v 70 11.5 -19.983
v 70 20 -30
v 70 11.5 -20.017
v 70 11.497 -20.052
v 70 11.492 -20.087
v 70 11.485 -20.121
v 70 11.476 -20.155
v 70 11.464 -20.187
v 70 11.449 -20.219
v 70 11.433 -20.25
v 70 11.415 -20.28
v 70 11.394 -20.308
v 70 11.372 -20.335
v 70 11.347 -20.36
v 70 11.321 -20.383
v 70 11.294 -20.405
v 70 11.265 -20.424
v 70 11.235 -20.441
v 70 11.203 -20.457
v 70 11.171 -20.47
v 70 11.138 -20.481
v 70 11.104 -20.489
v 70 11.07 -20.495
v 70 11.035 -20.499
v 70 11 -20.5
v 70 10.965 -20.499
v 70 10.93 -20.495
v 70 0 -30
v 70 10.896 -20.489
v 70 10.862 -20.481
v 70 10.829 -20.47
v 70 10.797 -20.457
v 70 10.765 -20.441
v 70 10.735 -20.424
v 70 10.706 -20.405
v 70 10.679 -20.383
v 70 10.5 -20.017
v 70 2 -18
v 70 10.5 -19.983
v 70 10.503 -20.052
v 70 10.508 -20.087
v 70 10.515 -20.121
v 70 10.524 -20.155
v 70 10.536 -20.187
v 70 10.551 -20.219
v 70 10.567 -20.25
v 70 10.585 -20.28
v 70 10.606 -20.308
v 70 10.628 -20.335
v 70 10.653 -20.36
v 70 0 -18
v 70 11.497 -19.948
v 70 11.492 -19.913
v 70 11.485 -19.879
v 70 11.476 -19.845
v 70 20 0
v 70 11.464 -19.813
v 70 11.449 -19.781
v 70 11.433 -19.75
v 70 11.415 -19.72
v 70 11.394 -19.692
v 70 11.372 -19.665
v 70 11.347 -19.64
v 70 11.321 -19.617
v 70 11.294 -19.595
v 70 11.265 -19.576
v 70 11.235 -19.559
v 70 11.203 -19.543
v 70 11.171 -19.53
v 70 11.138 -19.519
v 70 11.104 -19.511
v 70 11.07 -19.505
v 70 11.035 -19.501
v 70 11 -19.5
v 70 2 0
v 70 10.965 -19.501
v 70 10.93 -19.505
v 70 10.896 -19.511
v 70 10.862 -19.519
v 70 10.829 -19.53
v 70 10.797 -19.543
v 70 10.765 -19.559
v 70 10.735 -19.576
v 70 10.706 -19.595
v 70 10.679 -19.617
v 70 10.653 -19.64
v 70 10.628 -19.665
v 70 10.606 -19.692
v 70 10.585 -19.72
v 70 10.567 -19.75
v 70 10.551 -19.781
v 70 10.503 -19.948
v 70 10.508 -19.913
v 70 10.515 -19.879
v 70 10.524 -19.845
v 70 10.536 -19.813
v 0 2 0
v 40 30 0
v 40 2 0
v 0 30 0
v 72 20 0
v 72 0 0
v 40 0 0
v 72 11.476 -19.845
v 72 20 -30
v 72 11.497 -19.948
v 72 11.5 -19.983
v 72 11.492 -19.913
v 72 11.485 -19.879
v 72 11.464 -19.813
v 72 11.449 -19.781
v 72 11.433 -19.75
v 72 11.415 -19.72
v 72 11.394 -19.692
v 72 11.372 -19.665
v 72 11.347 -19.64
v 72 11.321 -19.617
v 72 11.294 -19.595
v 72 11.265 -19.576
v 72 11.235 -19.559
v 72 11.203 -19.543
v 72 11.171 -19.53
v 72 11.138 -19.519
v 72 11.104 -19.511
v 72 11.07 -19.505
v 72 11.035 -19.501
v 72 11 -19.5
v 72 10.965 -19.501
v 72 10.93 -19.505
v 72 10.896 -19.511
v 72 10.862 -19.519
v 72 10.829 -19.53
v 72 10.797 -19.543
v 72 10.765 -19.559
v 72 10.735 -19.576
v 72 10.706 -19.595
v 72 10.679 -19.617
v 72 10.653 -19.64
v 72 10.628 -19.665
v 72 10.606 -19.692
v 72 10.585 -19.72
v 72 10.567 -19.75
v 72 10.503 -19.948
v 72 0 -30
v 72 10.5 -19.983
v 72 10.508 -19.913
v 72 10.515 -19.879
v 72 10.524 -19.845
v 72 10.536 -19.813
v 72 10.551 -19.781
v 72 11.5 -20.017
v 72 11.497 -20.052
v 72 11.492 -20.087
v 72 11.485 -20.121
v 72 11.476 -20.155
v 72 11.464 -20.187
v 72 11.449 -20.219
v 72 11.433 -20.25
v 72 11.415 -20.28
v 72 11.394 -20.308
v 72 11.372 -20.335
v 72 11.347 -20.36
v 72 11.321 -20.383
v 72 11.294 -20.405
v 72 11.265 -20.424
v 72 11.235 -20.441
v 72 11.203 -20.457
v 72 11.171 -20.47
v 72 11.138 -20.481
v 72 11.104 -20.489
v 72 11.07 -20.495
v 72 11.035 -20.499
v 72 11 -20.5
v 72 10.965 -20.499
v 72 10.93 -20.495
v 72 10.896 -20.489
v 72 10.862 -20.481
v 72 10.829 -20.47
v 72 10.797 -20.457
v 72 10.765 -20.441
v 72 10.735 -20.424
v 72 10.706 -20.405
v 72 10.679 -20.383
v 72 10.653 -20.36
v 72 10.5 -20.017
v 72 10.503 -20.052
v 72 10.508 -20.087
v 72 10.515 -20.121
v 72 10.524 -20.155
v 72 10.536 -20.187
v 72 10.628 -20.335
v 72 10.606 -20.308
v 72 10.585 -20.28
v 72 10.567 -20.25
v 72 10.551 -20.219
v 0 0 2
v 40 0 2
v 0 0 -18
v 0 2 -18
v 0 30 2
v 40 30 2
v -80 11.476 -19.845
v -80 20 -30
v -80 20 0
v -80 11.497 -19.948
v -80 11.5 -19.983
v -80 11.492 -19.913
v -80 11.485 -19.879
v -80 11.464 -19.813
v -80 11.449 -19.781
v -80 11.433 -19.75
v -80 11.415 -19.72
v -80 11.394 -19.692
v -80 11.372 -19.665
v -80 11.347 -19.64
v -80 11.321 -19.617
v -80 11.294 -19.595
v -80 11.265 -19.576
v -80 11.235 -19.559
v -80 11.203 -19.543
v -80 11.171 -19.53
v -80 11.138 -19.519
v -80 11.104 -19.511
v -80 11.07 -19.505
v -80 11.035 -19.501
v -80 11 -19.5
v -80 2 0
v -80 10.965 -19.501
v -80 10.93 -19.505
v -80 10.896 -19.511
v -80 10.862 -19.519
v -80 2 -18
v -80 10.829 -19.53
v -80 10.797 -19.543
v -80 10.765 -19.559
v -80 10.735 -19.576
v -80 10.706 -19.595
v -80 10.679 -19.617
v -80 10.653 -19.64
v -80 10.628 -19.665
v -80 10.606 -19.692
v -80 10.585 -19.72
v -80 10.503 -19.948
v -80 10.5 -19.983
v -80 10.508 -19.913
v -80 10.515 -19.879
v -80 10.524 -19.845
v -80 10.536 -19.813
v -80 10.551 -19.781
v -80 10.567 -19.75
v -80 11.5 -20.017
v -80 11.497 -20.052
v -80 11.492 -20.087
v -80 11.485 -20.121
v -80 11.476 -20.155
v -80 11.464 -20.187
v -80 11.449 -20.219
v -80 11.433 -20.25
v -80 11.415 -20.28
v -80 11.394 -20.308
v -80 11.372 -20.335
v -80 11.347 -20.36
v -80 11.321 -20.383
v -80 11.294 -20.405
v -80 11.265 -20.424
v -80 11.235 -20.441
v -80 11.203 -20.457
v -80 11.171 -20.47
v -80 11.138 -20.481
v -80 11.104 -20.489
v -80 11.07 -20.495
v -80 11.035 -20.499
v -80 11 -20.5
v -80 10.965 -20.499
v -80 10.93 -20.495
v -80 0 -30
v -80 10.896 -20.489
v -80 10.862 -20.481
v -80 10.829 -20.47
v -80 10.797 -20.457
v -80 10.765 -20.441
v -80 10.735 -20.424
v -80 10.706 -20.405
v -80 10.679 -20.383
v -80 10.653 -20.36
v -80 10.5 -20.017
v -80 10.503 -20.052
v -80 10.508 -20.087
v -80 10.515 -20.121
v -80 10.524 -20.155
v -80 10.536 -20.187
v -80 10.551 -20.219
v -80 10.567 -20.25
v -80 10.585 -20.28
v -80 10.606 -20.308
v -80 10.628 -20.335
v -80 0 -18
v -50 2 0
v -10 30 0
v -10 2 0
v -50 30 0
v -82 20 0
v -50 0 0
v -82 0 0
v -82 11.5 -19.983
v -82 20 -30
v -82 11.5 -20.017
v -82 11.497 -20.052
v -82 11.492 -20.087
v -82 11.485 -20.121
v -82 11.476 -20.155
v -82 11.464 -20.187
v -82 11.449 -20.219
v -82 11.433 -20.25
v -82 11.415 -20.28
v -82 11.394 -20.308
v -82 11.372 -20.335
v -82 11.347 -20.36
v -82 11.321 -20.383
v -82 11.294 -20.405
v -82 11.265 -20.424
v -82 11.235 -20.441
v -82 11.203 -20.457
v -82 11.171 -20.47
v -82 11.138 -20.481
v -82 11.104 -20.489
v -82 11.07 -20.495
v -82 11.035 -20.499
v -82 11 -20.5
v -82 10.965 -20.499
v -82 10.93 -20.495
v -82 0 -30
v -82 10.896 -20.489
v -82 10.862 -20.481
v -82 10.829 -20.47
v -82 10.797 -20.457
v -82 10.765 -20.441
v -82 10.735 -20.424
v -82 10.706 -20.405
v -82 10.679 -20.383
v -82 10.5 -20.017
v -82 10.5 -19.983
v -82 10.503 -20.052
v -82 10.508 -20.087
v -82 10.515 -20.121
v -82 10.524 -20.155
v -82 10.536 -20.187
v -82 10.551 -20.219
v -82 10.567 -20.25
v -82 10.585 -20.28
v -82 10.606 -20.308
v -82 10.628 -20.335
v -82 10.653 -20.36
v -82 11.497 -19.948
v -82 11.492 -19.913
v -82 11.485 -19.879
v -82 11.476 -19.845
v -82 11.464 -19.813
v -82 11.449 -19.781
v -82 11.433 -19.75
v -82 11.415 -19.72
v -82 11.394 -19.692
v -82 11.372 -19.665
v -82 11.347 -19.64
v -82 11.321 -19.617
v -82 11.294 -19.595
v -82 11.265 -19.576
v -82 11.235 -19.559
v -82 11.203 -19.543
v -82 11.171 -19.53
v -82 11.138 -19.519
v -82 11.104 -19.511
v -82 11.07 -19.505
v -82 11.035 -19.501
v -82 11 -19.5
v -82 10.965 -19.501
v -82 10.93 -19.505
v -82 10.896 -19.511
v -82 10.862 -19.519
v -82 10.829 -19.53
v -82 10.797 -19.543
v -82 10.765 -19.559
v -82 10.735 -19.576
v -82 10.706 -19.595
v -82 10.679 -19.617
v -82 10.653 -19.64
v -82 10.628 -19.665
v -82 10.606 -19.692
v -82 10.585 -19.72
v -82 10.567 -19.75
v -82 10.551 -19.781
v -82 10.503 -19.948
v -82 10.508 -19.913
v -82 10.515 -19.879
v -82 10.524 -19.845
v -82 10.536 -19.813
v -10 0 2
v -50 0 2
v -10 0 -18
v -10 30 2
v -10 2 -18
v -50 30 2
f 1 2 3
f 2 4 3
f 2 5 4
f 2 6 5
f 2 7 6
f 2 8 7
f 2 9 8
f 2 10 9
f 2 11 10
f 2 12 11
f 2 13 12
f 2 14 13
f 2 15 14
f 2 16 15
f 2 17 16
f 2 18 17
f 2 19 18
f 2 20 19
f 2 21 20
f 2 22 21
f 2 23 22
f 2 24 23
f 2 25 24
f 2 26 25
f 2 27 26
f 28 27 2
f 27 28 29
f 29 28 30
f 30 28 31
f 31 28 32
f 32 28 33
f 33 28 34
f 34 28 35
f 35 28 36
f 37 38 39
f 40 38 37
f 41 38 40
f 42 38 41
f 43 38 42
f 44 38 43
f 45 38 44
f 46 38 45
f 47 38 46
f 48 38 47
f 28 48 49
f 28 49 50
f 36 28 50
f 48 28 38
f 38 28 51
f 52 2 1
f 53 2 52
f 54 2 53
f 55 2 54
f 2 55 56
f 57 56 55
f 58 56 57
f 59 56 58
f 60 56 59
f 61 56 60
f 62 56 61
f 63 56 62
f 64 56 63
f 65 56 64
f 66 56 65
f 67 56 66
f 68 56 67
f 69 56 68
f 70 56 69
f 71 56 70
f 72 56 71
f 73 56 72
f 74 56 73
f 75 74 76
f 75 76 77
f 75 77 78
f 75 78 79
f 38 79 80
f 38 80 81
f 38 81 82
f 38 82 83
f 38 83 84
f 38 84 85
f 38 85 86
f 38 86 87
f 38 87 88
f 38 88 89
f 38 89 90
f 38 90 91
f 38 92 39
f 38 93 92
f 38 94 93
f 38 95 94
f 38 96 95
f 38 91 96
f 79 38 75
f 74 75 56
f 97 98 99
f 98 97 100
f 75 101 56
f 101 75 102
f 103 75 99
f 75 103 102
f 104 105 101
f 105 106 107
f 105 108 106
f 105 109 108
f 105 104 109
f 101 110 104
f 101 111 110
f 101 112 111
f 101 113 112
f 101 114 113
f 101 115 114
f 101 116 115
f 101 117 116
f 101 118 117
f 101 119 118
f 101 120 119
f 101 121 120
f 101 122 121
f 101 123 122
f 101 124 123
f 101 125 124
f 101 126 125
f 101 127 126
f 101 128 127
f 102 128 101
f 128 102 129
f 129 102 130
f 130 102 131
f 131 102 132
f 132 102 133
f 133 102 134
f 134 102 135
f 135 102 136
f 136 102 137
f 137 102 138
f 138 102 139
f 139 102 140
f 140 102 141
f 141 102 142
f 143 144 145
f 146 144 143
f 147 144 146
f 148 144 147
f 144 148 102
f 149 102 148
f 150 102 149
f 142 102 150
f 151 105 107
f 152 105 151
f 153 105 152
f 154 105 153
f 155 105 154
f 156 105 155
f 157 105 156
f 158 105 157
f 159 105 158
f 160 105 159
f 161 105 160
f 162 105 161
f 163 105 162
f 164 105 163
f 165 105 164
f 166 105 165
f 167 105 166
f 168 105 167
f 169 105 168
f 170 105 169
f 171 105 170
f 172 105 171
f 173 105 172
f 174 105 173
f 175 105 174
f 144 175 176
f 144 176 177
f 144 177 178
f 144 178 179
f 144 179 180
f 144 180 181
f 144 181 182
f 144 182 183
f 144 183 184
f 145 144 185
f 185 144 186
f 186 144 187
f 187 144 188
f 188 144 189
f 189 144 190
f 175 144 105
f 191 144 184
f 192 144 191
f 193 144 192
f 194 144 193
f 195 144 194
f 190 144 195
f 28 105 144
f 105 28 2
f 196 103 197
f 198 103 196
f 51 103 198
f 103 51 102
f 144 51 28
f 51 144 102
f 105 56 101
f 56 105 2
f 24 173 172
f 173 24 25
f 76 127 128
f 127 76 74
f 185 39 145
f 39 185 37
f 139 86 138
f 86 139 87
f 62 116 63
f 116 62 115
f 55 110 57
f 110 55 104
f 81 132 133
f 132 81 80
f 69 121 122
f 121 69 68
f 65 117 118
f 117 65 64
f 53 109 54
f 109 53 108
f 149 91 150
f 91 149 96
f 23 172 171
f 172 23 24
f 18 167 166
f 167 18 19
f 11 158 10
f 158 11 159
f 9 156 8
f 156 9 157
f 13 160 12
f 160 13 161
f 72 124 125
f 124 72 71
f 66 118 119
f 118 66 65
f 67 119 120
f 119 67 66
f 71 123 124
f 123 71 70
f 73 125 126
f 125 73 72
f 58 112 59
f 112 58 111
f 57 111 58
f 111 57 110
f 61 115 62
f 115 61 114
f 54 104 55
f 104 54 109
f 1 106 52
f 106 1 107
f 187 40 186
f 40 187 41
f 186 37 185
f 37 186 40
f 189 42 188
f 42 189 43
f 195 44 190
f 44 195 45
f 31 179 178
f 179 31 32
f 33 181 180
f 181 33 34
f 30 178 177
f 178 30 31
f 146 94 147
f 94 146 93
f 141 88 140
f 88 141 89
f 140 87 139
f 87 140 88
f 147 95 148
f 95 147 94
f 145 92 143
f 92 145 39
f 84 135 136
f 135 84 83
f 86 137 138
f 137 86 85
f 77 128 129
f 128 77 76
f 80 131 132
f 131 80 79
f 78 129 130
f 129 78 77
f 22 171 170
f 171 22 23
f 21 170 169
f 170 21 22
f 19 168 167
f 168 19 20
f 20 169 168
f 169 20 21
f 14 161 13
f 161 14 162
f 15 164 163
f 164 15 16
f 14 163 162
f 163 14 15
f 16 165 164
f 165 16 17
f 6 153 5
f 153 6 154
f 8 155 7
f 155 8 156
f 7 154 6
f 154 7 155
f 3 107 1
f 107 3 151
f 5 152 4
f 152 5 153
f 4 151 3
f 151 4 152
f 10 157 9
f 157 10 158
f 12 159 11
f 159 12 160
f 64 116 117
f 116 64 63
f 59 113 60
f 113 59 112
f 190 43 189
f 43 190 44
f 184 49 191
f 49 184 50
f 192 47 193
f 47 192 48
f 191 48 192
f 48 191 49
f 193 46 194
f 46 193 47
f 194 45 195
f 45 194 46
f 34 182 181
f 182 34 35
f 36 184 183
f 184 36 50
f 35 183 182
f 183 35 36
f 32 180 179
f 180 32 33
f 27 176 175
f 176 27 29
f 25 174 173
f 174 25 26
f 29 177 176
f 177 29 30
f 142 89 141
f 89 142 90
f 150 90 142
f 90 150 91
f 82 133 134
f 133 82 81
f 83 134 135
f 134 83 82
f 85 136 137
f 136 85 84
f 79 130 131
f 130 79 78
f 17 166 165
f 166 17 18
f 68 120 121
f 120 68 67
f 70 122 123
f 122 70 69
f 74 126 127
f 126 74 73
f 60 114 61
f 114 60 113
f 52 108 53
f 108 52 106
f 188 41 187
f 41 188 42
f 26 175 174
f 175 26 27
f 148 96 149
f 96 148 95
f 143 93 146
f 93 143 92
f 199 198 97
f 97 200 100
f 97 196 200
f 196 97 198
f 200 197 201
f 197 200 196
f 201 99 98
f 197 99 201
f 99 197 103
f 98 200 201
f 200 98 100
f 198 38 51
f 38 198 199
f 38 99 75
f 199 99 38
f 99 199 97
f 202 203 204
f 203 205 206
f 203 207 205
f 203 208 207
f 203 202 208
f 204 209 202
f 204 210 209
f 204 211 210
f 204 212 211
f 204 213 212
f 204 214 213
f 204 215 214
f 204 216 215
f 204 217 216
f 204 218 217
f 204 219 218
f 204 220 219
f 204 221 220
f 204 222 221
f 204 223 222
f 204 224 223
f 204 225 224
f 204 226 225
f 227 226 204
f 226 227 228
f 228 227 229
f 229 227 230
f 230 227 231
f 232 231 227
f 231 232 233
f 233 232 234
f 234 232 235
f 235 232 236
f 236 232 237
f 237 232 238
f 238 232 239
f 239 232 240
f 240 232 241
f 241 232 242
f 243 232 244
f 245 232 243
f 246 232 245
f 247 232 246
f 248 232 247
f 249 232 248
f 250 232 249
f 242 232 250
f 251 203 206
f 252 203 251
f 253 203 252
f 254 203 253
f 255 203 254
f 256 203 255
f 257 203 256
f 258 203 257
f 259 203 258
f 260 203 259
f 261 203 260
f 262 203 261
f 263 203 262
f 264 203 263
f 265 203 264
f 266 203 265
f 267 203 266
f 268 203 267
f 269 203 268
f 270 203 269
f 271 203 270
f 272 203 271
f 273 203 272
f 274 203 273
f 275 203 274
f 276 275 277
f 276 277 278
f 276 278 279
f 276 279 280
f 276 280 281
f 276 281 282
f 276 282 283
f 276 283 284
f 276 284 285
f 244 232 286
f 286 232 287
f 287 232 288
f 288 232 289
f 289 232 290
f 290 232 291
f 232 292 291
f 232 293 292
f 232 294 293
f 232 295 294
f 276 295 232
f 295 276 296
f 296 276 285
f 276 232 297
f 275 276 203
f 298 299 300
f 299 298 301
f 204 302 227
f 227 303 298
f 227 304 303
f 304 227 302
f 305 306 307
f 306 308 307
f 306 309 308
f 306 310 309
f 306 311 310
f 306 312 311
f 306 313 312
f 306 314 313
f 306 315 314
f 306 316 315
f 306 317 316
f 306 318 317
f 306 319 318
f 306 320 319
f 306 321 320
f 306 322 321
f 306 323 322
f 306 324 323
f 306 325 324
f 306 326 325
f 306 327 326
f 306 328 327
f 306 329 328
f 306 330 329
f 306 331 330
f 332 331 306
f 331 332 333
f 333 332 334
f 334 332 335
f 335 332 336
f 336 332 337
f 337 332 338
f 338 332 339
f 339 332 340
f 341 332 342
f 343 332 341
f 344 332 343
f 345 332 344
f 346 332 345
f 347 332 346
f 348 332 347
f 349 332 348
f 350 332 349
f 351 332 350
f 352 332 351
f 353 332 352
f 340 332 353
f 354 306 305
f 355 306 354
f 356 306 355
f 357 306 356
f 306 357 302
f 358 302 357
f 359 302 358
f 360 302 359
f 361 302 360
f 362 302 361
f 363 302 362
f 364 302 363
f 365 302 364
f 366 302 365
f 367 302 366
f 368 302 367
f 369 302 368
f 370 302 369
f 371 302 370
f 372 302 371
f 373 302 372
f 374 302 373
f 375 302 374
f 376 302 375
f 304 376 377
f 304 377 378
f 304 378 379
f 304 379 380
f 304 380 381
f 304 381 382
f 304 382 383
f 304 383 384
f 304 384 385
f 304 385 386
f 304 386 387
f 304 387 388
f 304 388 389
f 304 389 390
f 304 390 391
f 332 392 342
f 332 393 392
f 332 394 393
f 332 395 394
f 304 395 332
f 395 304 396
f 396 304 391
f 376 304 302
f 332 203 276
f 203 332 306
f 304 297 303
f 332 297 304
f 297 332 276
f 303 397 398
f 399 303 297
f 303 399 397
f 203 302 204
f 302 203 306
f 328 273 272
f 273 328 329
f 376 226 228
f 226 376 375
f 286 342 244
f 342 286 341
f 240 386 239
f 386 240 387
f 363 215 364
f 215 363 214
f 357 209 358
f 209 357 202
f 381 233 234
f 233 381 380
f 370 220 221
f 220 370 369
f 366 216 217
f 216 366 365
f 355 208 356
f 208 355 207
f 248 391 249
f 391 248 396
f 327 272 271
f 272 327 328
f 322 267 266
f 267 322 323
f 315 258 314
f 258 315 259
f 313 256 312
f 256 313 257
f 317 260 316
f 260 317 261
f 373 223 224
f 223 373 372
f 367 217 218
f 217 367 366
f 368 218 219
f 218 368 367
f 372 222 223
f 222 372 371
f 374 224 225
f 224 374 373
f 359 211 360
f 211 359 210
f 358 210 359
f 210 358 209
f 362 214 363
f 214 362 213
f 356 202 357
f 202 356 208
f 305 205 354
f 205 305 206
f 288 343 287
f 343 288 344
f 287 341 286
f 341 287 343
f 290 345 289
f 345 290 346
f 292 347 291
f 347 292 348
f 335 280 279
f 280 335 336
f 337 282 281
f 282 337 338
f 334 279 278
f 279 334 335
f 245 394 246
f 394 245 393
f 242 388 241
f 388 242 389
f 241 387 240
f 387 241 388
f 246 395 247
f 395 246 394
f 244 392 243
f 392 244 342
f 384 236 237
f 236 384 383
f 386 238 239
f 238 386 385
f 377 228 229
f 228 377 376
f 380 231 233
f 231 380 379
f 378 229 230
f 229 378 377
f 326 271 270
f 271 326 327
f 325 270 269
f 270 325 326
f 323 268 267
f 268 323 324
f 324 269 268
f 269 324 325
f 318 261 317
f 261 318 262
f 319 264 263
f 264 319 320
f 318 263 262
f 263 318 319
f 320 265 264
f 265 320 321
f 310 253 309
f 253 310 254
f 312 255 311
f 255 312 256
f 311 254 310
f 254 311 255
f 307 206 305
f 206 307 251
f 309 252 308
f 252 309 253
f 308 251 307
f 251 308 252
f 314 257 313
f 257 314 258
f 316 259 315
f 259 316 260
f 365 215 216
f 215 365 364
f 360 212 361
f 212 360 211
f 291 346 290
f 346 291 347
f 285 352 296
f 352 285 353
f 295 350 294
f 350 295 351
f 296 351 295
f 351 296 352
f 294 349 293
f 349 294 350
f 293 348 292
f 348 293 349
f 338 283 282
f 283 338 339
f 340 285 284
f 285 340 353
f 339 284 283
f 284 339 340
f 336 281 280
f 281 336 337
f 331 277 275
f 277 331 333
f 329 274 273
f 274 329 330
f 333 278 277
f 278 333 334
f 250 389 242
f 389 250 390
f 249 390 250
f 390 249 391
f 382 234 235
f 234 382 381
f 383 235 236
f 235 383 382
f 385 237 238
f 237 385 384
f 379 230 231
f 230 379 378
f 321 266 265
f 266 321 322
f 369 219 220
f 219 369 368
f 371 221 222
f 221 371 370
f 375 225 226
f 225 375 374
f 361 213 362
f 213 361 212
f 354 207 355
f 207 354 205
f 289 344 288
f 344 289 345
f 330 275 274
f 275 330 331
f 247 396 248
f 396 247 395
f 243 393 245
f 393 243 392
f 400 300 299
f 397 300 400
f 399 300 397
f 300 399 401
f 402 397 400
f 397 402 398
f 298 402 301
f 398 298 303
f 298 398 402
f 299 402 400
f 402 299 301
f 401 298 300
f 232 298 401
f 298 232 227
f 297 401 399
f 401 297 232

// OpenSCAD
template();

mirror([1, 0, 0])
	translate([10, 0, 0])
		template();

module template(){
	$fn = 90;
	thickness = 2;
	
	cube([40, 30, thickness]);
	translate([0, 0, -18])
		cube([70, thickness, 18]);
	difference(){
		translate([70, 0, -30])
			cube([thickness, 20, 30]);
		translate([70, 9+thickness, -20])
			rotate([0, 90, 0])
				#cylinder(d=1, h=thickness);
	}
}
